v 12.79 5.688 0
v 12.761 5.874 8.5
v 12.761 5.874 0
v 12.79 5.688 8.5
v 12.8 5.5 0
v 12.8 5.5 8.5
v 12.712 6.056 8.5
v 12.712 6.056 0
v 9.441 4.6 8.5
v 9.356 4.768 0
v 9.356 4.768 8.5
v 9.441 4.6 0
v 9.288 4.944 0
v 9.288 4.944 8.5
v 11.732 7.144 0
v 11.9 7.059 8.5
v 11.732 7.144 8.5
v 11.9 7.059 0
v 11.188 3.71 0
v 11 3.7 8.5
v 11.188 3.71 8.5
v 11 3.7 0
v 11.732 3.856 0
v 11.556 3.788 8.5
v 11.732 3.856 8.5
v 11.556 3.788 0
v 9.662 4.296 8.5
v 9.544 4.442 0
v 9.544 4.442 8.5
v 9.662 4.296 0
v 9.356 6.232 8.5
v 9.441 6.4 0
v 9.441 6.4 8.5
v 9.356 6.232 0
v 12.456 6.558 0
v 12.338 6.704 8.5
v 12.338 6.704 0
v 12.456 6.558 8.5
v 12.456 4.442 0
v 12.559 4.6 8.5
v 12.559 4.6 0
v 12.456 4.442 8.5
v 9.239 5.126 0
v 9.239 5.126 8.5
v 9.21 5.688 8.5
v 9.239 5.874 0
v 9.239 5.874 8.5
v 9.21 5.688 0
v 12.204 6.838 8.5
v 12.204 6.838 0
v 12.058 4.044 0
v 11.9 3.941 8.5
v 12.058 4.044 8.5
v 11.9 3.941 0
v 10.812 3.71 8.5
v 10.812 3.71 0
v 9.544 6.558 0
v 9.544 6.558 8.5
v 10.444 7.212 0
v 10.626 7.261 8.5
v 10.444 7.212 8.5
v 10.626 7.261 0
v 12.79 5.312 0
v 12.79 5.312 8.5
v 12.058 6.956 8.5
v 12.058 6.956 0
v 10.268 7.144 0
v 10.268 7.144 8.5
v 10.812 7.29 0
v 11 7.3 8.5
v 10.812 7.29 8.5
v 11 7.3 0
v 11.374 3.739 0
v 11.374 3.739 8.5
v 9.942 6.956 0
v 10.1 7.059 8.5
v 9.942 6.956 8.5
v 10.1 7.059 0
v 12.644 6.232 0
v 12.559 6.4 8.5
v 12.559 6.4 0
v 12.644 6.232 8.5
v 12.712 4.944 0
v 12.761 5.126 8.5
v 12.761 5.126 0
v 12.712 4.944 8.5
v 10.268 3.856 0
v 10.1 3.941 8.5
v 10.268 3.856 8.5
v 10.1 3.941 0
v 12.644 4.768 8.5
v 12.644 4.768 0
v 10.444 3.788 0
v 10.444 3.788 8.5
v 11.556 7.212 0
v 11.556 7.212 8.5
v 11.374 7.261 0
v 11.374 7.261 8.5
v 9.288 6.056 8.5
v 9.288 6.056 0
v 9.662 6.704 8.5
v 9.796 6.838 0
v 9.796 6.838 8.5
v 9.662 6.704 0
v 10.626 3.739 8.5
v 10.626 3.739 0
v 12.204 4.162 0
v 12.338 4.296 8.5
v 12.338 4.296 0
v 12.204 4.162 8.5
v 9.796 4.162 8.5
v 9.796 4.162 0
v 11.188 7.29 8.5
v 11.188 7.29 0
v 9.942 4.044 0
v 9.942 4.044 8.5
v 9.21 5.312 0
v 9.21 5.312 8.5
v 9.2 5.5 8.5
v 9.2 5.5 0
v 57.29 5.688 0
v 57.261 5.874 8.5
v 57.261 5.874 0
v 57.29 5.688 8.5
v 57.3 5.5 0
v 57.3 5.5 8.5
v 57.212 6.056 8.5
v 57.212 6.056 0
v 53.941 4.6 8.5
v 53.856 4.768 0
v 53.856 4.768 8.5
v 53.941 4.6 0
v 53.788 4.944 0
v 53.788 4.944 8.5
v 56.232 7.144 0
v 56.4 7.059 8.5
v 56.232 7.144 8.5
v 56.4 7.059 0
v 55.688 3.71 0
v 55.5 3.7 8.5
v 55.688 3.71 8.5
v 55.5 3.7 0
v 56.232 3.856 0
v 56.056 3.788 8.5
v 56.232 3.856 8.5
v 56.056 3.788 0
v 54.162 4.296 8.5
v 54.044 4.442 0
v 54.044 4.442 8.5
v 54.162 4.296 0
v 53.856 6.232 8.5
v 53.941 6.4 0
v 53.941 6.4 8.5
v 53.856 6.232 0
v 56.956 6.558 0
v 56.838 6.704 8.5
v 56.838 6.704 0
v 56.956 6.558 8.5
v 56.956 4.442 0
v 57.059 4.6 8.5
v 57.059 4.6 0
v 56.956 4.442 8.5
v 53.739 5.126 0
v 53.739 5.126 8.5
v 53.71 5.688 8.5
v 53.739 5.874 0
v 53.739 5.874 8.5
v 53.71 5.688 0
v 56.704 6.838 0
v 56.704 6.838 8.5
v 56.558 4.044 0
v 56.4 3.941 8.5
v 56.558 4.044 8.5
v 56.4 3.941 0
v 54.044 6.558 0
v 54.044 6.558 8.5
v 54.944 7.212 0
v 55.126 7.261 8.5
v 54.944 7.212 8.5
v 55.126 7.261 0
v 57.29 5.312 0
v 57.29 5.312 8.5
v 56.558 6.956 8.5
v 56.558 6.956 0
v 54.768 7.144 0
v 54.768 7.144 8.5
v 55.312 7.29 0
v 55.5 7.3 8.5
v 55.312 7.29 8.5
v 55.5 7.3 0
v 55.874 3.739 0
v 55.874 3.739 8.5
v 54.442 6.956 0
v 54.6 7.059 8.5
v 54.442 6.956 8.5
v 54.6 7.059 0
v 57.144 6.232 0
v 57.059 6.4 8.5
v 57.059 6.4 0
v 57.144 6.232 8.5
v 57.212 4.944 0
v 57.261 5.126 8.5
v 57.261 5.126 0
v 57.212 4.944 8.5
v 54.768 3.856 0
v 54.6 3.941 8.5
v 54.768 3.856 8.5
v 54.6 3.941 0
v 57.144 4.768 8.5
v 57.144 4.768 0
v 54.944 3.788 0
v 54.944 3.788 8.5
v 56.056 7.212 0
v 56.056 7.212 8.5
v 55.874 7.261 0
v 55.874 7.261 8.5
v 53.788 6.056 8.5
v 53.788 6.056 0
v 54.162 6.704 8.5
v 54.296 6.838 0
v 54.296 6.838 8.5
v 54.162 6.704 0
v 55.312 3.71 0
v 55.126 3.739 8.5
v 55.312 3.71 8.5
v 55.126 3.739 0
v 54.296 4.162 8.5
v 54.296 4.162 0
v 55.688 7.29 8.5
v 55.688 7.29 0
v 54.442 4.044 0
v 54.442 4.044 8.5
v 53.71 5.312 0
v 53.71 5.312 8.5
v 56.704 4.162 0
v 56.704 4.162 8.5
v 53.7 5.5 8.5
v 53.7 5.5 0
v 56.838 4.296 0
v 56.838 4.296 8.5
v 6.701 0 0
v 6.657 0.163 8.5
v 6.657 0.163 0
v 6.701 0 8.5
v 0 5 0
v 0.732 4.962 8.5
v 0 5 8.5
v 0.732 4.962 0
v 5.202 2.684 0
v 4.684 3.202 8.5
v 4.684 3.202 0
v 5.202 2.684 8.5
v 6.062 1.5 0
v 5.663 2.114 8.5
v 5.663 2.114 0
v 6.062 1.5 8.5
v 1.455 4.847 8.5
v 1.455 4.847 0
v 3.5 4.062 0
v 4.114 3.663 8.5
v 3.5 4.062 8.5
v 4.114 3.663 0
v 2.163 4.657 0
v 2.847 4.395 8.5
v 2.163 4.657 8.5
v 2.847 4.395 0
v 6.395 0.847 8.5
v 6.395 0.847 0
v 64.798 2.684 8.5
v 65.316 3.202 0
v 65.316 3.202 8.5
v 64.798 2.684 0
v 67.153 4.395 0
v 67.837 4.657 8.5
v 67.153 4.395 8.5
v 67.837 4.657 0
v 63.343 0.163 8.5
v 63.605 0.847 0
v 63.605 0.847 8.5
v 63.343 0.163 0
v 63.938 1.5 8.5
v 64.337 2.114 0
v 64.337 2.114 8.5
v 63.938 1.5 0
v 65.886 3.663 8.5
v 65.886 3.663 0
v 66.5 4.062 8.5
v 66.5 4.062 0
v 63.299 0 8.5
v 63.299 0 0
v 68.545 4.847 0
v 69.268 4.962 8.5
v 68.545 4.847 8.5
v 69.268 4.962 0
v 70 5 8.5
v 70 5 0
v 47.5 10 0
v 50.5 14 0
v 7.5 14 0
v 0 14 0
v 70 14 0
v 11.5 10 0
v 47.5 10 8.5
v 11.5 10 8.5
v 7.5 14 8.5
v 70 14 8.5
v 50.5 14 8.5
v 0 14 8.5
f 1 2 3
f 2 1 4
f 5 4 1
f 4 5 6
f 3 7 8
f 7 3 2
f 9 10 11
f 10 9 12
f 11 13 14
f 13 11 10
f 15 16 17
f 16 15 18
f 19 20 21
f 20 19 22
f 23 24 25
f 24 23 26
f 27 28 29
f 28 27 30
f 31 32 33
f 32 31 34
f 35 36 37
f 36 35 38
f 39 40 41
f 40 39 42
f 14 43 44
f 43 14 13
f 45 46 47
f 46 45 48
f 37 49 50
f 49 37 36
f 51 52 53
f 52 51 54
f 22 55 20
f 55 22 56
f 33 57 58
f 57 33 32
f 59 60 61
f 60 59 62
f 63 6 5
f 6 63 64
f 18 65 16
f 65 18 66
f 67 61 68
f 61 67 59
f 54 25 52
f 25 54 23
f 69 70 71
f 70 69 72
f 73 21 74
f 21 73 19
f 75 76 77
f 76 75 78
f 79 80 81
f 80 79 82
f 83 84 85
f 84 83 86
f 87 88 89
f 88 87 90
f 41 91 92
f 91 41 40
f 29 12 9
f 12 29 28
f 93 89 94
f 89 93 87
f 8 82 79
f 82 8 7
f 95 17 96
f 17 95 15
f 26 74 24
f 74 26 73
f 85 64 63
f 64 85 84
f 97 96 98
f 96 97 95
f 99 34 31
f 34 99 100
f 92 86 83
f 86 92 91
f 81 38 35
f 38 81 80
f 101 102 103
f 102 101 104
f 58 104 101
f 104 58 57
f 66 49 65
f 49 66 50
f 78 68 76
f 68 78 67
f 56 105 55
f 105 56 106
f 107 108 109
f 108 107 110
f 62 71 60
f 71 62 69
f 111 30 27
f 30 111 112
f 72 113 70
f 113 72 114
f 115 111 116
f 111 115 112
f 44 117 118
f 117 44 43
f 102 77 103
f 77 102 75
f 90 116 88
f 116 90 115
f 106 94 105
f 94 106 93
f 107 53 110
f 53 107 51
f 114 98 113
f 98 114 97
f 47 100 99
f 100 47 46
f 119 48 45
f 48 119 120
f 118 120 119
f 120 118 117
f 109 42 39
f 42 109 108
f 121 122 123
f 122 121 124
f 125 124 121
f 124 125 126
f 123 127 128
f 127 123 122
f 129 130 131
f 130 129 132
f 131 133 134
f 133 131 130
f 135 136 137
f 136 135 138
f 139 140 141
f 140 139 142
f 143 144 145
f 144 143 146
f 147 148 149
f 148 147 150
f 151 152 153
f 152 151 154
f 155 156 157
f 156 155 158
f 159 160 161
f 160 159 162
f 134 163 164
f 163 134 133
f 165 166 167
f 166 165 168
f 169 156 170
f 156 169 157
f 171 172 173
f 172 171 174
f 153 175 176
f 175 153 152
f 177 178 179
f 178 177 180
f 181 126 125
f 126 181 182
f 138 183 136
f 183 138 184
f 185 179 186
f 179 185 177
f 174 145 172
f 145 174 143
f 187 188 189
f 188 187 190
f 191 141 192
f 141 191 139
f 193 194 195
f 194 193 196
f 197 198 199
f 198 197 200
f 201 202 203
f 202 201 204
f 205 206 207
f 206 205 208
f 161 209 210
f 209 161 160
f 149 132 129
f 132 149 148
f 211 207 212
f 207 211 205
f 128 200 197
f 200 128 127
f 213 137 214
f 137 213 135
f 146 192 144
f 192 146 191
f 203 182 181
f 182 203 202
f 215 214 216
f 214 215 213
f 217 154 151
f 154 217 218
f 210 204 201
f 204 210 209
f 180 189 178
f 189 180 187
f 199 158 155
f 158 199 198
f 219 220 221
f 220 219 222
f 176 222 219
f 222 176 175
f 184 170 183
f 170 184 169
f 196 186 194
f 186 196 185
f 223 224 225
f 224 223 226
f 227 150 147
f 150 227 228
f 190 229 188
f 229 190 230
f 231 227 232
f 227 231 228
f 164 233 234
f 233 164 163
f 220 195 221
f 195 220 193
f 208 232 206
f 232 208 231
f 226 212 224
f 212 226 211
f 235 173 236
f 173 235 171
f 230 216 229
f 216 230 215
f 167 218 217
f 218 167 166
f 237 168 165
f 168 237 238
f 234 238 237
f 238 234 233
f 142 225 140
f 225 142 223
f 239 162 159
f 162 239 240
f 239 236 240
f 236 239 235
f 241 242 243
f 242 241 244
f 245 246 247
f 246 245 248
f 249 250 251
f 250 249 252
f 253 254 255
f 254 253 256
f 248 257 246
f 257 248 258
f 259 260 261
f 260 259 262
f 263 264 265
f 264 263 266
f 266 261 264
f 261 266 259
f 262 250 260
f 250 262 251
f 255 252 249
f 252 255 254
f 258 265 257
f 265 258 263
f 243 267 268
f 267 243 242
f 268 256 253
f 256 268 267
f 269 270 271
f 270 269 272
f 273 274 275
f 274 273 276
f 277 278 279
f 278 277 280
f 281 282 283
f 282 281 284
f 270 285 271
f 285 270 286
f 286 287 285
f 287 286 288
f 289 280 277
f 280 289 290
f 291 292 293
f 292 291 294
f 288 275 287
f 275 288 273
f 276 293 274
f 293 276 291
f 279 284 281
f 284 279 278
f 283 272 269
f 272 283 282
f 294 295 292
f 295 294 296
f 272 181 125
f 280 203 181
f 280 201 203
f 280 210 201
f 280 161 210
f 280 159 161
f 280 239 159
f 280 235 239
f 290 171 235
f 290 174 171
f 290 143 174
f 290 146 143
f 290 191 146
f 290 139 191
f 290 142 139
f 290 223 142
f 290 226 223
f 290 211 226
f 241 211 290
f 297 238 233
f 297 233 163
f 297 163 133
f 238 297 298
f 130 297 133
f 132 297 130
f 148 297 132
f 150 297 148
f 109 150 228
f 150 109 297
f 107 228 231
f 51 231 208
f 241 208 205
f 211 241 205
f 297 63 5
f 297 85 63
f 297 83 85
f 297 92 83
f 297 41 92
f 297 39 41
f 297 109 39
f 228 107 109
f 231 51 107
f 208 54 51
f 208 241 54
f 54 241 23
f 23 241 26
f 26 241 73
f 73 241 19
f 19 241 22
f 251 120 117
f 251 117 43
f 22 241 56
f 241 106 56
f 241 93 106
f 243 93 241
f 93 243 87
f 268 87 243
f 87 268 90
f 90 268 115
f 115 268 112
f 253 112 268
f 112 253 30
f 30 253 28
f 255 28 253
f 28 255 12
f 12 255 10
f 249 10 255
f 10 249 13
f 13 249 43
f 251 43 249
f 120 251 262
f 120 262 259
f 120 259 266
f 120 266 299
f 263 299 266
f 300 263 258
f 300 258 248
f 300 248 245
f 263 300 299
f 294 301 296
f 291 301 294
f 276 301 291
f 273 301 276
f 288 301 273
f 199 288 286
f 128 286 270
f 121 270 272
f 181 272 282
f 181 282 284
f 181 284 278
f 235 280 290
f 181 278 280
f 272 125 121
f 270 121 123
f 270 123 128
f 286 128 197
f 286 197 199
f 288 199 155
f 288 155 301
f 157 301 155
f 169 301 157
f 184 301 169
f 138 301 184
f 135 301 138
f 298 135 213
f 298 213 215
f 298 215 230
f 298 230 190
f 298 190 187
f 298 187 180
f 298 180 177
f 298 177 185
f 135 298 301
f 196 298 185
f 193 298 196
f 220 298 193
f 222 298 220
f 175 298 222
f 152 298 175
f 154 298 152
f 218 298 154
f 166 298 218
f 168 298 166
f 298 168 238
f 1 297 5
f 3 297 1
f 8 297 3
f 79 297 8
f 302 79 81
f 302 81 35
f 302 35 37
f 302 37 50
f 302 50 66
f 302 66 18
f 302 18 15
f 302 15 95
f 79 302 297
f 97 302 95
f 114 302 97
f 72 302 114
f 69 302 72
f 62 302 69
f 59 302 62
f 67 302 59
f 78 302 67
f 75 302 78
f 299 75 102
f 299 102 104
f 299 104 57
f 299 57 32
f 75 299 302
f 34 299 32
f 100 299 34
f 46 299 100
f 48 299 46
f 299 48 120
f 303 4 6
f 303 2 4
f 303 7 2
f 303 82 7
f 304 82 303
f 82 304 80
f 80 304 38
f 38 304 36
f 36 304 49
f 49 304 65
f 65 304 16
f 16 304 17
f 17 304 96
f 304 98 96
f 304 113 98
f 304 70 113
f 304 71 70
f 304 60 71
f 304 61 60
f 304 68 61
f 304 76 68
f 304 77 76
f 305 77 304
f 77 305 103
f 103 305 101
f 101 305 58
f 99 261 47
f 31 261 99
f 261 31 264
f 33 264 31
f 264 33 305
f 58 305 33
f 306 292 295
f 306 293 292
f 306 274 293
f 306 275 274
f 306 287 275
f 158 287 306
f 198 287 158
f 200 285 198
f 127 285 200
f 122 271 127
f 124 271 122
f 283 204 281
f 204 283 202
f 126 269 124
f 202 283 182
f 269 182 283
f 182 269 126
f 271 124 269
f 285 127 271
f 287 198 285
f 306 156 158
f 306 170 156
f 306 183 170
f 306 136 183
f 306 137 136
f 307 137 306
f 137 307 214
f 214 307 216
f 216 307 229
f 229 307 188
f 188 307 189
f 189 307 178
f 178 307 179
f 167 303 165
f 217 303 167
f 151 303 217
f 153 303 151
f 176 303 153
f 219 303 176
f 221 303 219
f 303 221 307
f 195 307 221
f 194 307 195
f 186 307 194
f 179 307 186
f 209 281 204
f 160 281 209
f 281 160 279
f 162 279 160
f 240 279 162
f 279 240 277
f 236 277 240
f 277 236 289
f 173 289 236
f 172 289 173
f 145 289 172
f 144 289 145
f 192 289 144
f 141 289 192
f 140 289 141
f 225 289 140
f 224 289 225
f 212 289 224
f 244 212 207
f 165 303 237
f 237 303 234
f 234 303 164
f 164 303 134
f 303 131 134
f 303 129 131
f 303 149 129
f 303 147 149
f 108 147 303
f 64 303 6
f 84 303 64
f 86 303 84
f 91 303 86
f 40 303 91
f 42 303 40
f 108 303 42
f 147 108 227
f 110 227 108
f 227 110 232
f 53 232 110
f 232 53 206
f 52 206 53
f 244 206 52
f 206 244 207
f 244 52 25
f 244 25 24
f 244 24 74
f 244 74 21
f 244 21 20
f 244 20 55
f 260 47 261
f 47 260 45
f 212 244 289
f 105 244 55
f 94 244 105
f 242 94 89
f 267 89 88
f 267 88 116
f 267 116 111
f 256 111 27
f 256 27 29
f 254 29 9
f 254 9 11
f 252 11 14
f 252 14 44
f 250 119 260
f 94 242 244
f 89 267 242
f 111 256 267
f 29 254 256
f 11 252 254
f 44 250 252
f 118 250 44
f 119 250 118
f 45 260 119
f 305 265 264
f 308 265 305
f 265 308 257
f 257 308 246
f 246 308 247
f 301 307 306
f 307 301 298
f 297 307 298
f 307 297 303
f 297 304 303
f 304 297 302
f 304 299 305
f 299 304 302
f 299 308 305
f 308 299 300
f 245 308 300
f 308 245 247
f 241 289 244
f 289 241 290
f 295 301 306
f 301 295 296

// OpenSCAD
// Bracket
$fn=60;
width=70;
height=14;
depth=8.5;

module body(){
    p0 = [0, 0];
    p1 = [0, height];
    p2 = [7.5, height];
    p3 = [11.5, height-4];
    p4 = [47.5, height-4];
    p5 = [50.5, height];
    p6 = [width, height];
    p7 = [width, 0];

    points = [p0, p1, p2, p3, p4, p5, p6, p7];
    linear_extrude(height=depth) polygon(points);
}

module holes(){
    translate([11, height-8.5, 0-.01]) cylinder(r=1.8, h=depth+0.02);
    translate([55.5, height-8.5, 0-.01]) cylinder(r=1.8, h=depth+0.02);
}


module wheelCuts(){
    translate([0, -2, 0-.01]) cylinder(r=7, h=depth+0.02);
    translate([width, -2, 0-.01]) cylinder(r=7, h=depth+0.02);
}



difference() {
    body();
    holes();
    wheelCuts();
}
